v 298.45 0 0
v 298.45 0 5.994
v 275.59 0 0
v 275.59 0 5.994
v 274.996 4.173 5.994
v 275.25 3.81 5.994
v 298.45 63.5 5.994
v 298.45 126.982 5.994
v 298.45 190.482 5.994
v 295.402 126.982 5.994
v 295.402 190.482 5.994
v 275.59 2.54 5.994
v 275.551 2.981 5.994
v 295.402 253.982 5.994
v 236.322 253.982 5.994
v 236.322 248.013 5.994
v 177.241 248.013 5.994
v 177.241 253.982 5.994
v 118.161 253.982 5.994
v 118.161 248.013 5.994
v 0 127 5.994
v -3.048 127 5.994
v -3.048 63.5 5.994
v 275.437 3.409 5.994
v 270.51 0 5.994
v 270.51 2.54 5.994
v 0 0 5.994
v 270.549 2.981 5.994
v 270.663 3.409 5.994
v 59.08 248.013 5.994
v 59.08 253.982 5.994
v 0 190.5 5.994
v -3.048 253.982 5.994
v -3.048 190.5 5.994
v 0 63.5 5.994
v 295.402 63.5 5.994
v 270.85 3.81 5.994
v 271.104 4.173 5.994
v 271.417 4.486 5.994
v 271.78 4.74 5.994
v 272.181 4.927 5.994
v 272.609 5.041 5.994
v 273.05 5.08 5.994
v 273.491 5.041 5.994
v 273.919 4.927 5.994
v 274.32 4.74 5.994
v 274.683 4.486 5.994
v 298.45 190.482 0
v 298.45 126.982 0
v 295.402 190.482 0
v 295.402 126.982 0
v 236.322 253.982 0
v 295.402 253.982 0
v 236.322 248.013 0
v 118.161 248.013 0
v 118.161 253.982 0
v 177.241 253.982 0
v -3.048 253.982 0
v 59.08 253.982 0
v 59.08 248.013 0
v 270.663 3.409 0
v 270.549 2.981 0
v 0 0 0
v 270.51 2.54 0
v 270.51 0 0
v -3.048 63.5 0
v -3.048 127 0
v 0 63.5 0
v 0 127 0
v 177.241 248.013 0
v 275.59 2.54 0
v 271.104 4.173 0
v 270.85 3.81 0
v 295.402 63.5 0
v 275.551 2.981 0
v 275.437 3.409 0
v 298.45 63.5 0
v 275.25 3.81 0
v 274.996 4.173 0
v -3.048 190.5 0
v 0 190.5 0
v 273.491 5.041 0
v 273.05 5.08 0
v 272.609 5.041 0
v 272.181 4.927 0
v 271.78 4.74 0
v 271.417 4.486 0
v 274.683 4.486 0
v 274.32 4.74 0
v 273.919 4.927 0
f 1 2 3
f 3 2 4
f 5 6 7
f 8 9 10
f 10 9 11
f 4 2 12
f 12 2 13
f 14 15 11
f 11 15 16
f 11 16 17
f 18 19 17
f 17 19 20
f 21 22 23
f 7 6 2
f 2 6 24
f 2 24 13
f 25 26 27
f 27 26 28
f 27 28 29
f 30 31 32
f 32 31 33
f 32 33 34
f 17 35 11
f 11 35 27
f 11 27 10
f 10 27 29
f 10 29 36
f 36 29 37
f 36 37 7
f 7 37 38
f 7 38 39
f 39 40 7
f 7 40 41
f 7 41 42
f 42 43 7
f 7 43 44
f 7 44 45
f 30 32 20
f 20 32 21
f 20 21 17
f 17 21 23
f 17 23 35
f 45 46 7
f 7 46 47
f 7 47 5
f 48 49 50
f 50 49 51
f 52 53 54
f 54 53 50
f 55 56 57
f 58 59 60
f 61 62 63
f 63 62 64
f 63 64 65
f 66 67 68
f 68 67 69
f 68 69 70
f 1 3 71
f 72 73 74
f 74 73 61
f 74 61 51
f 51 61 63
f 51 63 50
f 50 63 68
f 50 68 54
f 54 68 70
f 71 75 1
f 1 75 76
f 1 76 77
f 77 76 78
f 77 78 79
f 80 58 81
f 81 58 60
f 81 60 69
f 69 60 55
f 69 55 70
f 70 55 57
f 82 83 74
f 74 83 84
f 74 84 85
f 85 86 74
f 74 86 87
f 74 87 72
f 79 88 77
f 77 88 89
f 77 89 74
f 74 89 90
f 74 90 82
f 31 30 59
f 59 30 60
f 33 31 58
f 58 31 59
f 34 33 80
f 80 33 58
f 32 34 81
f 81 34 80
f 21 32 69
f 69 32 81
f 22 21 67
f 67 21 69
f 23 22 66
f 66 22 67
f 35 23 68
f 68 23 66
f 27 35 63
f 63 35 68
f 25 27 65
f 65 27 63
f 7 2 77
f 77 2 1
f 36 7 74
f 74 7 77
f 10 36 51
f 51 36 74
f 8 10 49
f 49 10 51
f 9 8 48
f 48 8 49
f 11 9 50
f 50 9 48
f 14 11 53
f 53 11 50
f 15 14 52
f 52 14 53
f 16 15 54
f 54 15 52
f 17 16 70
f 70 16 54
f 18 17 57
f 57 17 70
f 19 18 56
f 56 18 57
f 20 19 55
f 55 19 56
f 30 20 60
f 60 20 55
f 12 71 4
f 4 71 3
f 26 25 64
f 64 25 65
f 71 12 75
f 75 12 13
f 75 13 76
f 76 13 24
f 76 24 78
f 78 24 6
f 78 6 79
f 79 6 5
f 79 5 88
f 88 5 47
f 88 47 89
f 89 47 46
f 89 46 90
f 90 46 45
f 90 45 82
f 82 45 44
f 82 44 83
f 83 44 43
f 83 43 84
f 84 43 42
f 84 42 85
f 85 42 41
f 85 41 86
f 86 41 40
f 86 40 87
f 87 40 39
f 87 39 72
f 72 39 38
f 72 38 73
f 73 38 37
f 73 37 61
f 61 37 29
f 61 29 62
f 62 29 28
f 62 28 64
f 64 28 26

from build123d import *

# Parameters (mm, degrees)
BOSS_EXTRUDE1_DEPTH = 5.9944
CUT_EXTRUDE2_REACH  = 7.994


with BuildPart() as part:
    # Sketch1 → Boss-Extrude1 (new body)
    with BuildSketch(Plane.XY):
        Polygon((-3.048, 63.5), (-3.048, 127), (0, 127), (0, 190.5), (-3.048, 190.5), (-3.048, 253.981711342), (59.0804, 253.981711342), (59.0804, 248.012711342), (118.1608, 248.012711342), (118.1608, 253.981711342), (177.2412, 253.981711342), (177.2412, 248.012711342), (236.3216, 248.012711342), (236.3216, 253.981711342), (295.402, 253.981711342), (295.402, 190.481711342), (298.45, 190.481711342), (298.45, 126.981711342), (295.402, 126.981711342), (295.402, 63.5), (298.45, 63.5), (298.45, 0), (0, 0), (0, 63.5), align=None)
    extrude(amount=BOSS_EXTRUDE1_DEPTH)

    # Sketch2 → Cut-Extrude2 (cut, up to next)
    with BuildSketch(Plane.XY.offset(5.9944), mode=Mode.PRIVATE) as cut_extrude2_sk1:
        with BuildLine():
            Line((270.51, 2.54), (270.51, 0))
            Line((270.51, 0), (275.59, 0))
            Line((275.59, 0), (275.59, 2.54))
            ThreePointArc((275.59, 2.54), (273.05, 5.08), (270.51, 2.54))
        make_face()
    cut_extrude2_tool1 = extrude(cut_extrude2_sk1.sketch, amount=-CUT_EXTRUDE2_REACH, mode=Mode.PRIVATE) & part.part
    add(cut_extrude2_tool1.solids().sort_by_distance((273.05, 2.302891, 5.9944))[0], mode=Mode.SUBTRACT)


solid = part.part
